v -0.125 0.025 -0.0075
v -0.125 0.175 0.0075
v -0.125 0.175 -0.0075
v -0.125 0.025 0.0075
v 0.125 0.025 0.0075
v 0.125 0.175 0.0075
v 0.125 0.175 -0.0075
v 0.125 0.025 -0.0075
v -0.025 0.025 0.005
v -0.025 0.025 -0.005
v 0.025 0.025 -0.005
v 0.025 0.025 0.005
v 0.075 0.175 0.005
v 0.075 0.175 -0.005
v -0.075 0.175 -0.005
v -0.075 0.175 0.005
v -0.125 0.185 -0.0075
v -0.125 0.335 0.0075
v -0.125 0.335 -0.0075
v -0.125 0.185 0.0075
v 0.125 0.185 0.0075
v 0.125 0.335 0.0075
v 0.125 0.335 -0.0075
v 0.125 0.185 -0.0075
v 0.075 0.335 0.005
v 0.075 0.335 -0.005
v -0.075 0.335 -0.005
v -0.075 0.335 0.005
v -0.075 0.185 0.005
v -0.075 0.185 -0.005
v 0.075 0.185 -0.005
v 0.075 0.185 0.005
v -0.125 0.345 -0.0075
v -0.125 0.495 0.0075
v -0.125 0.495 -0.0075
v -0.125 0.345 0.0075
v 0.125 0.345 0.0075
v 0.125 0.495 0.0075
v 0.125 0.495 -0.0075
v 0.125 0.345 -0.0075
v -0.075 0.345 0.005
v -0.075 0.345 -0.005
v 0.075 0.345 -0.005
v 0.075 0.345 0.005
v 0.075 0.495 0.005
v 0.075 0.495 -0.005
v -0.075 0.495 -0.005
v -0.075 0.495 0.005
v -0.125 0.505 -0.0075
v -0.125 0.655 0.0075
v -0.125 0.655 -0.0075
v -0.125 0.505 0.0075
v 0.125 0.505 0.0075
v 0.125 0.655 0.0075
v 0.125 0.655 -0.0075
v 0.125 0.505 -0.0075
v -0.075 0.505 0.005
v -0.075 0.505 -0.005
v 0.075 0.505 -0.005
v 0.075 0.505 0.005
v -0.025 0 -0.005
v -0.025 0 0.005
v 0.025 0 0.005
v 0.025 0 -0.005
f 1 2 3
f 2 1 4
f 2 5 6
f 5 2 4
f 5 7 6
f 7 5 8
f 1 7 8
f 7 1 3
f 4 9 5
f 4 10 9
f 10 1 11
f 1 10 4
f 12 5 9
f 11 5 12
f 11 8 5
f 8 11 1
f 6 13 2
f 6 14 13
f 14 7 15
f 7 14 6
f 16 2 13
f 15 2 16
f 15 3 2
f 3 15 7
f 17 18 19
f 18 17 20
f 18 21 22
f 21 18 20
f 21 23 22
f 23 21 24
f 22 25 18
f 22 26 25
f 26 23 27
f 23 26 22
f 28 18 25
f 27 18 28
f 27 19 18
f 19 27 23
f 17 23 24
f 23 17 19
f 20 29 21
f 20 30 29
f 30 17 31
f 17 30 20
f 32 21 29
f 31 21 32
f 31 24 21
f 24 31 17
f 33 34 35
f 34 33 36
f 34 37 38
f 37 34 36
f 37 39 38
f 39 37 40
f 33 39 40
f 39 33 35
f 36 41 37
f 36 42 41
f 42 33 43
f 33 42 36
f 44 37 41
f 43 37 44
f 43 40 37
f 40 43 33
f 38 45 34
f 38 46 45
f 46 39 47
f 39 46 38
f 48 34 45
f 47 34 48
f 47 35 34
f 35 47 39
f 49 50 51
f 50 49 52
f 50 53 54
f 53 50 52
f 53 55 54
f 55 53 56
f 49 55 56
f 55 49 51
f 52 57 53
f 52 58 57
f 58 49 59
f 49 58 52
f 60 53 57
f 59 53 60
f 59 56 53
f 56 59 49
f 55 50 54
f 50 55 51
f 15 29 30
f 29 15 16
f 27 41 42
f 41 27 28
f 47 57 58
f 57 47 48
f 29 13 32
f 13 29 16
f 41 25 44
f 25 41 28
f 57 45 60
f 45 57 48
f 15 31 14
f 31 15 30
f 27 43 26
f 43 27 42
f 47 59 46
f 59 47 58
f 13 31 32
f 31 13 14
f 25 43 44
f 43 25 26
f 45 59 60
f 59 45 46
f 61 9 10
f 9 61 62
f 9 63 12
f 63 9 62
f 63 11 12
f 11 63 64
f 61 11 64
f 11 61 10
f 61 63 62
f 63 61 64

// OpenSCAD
sl = 0.25;
sw = 0.15;
sh = 0.015;
ssep = 0.01;
Nl = 3;
Nw = 2;
sep = 0.01;

cl = (sl-(Nl+1)*sep)/Nl;
cw = (sw-(Nw+1)*sep)/Nw;
ch = sh*1.1;
echo(cl);
echo(cw);

conl = 0.1;
conh = 0.01;

hubcl = 0.05;
hubcw = 0.05;
hubch = 0.01;
translate([0,hubcw/2,0])
  union(){
    cube([hubcl,hubcw,hubch],center=true);
  translate([-sl/2,0,-sh/2]){
    translate([sl*0.2, 0, -(conh-sh)/2])
      cube([conl,(sw+ssep)*4-ssep,conh]);
    translate([sl*0.8-conl, 0, -(conh-sh)/2])
      cube([conl,(sw+ssep)*4-ssep,conh]);
    for(i=[0:3]){
      translate([0, (sw+ssep)*i, 0]){
        cube([sl,sw,sh]);
        //translate([sep, sep, 0])
        //  for(i=[0:2])
        //    for(j=[0:1])
        //      translate([i*(cl+sep), j*(cw+sep), 0])
                //cube([cl,cw,ch]);
        }
    }
  }
  }
